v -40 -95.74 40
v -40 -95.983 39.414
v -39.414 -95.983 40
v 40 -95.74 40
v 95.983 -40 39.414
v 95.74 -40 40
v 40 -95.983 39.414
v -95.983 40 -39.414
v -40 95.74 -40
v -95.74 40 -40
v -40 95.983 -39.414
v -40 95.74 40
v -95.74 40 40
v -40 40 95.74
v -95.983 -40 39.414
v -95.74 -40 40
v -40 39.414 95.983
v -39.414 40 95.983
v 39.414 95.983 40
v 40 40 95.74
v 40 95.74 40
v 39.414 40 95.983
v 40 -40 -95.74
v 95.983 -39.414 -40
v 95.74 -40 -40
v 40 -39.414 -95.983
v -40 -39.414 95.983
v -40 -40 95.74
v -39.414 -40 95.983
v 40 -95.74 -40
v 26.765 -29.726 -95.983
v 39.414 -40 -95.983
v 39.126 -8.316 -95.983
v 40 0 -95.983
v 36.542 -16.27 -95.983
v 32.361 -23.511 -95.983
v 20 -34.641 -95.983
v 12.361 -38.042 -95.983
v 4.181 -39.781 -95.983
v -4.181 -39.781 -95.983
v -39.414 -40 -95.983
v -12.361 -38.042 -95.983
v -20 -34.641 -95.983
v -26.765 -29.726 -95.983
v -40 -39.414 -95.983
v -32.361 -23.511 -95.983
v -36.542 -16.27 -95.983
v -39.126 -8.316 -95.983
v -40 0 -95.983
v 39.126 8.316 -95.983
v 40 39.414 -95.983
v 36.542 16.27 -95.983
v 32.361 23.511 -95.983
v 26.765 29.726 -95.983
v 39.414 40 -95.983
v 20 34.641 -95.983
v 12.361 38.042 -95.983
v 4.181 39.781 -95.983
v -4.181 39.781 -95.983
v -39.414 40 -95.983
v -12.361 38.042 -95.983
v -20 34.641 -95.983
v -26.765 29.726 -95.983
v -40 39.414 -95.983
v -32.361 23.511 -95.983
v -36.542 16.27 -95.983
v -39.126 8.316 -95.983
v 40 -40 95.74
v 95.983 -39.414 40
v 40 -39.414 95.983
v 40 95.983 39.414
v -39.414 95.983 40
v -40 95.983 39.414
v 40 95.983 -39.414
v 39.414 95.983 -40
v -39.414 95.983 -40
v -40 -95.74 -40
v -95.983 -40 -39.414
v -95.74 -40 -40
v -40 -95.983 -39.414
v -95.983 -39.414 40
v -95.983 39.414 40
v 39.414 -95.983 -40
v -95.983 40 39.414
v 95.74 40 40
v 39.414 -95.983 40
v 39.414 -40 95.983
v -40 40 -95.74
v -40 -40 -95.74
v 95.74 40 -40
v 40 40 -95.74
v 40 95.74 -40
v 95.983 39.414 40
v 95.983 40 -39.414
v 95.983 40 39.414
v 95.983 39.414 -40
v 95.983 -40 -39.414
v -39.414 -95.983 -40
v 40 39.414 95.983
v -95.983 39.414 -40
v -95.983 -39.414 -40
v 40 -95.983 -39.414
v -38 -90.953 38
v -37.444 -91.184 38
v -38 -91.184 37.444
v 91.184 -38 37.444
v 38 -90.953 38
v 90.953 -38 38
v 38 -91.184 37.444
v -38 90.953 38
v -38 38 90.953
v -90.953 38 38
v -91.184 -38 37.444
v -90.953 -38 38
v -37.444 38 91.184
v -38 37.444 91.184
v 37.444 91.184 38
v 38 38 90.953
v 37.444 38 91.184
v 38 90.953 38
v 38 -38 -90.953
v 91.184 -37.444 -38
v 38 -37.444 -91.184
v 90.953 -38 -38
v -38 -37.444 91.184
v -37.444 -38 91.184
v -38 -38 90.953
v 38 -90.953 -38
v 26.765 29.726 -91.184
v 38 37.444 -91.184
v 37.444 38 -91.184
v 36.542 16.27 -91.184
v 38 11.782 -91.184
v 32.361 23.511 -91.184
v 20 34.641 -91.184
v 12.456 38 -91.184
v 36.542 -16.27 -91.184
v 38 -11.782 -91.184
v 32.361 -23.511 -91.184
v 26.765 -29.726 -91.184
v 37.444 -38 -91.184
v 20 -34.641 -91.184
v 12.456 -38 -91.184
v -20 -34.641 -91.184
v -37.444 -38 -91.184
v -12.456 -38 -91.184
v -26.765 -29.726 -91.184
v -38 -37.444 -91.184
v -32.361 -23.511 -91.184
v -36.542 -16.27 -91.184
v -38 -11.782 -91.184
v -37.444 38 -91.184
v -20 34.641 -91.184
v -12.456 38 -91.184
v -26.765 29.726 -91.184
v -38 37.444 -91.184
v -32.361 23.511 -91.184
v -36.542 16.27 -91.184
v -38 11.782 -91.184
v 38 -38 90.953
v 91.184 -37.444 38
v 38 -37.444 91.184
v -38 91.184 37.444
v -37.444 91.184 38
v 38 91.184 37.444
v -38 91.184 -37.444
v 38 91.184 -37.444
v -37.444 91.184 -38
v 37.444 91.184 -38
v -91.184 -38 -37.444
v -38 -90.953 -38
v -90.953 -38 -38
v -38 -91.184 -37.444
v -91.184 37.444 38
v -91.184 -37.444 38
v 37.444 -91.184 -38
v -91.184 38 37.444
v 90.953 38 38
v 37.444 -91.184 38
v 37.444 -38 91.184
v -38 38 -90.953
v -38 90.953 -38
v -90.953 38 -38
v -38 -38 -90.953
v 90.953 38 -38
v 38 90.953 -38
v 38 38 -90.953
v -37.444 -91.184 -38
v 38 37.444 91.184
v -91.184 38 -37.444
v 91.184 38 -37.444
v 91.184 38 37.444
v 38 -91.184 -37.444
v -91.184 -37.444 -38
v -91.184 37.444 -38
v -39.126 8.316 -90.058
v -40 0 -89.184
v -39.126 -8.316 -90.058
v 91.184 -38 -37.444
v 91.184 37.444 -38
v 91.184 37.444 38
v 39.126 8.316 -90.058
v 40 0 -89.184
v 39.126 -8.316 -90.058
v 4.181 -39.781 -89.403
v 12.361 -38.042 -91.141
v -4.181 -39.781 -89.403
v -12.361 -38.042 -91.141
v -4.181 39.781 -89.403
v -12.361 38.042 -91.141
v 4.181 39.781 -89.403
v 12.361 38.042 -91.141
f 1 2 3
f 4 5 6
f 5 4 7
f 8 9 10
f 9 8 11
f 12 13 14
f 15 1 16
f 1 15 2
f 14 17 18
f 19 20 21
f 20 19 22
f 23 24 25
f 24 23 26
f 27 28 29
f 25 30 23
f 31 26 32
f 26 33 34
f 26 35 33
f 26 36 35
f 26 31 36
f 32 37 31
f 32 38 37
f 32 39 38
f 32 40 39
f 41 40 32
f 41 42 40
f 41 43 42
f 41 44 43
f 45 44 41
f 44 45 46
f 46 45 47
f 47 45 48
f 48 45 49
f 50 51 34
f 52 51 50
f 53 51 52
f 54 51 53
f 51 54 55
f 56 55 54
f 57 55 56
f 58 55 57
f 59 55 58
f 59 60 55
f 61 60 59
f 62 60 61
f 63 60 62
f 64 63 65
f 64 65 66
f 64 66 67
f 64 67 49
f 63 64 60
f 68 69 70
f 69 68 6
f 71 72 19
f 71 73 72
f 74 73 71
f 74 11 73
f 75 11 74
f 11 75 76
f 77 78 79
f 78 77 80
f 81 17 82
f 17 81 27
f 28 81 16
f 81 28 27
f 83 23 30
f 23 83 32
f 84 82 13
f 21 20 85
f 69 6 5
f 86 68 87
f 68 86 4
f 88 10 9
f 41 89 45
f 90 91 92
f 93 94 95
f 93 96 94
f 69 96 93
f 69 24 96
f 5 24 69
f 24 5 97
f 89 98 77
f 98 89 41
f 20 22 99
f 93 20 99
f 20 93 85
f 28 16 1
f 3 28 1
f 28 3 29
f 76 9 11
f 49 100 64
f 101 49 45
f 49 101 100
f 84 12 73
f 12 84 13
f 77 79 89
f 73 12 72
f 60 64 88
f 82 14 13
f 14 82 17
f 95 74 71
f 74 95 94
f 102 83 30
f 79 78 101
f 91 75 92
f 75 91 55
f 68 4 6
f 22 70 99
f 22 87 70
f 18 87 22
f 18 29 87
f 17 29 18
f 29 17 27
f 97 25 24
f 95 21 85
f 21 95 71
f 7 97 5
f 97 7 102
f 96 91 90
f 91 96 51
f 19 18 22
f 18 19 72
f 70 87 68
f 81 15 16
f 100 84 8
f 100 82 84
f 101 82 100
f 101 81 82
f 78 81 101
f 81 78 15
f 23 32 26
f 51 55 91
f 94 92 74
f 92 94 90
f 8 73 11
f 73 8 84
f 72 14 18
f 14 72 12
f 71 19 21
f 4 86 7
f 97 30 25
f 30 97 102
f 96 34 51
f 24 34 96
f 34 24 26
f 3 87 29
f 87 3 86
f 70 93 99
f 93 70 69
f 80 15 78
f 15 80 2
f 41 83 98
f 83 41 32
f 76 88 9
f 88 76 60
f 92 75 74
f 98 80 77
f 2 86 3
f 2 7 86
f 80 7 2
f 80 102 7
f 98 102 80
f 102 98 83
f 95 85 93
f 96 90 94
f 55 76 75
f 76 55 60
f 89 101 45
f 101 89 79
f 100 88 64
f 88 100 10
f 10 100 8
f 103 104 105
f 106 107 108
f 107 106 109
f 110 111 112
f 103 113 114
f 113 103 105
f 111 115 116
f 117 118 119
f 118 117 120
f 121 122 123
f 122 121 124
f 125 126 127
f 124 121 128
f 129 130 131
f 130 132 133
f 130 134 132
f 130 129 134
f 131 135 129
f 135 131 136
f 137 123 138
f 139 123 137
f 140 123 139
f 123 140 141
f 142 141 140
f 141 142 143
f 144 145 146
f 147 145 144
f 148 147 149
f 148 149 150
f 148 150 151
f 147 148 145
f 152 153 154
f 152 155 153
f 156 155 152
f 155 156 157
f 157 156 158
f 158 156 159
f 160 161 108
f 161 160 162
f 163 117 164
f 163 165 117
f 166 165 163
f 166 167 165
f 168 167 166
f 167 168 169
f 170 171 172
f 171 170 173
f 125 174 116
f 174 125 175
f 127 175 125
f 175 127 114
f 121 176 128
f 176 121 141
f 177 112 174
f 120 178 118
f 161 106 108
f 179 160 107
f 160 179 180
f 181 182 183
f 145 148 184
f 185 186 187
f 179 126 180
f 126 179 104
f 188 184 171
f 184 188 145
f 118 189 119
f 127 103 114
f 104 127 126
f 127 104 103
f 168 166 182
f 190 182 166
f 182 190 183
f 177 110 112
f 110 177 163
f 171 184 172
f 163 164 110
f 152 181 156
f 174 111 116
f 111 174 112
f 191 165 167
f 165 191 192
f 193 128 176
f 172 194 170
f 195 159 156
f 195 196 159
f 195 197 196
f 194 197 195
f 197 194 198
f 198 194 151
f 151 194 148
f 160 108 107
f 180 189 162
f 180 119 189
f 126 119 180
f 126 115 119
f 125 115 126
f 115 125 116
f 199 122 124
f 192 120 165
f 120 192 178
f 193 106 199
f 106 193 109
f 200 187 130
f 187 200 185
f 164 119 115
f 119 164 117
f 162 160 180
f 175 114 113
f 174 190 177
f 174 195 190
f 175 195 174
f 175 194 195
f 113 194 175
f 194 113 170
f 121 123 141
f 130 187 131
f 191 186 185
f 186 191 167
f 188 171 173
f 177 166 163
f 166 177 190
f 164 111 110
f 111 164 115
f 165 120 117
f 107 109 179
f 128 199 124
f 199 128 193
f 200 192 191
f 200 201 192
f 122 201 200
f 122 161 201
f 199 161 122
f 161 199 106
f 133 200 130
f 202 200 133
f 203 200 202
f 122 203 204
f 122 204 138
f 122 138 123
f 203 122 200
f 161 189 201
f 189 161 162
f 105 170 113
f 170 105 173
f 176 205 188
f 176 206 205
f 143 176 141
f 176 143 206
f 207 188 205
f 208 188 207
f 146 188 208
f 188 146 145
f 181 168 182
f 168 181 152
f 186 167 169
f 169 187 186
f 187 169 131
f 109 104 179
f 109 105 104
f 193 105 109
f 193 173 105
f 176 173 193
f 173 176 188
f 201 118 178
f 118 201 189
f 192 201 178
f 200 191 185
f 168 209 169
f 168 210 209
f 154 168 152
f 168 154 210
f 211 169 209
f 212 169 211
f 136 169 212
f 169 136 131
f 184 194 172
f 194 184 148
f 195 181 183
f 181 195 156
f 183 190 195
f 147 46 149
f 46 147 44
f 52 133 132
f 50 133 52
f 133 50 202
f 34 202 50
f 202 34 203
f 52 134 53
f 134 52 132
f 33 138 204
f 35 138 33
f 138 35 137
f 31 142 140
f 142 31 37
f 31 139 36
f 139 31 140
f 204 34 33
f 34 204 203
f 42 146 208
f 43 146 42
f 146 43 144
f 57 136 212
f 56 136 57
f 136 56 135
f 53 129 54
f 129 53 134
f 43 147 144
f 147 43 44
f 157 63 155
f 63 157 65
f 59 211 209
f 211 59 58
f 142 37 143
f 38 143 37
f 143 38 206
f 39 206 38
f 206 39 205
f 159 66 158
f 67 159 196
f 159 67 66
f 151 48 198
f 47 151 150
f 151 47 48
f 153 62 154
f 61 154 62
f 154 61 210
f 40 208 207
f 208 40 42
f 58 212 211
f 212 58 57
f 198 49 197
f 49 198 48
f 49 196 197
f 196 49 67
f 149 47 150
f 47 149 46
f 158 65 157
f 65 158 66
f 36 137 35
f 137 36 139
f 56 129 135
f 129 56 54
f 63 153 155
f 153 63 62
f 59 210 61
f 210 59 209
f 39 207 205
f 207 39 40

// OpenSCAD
angle       = 360/8;
size        = 80;
thickness   =   4;
height      = (1 + sqrt(2)) * (size-thickness);

bulb_height = 120;
bulb_diam   =  80;

module j37() {
    hull() {    
        for (i = [0:7]) {
            rotate([0, 0, i*angle])
            translate([-0.5*size, -0.5*height-thickness, -0.5*size])
            cube([size, thickness, size]);
        }
    
        for (i = [0:7]) {
            rotate([i*angle, 0, 0])
            translate([-0.5*size, -0.5*size, 0.5*height])
            cube([size, size, thickness]);
        }
    
        for (i = [0:7]) {
            rotate([0, i*angle, 0])
            translate([-0.5*size, -0.5*size, 0.5*height])
            cube([size, size, thickness]);
        }
    }
}

module light_bulb() {
    cylinder(d = bulb_diam, h = bulb_height);
}

difference() {
    j37();
    scale([0.95, 0.95, 0.95]) j37();
    translate([0, 0, -0.5*height-2*thickness])
        light_bulb();    
}
